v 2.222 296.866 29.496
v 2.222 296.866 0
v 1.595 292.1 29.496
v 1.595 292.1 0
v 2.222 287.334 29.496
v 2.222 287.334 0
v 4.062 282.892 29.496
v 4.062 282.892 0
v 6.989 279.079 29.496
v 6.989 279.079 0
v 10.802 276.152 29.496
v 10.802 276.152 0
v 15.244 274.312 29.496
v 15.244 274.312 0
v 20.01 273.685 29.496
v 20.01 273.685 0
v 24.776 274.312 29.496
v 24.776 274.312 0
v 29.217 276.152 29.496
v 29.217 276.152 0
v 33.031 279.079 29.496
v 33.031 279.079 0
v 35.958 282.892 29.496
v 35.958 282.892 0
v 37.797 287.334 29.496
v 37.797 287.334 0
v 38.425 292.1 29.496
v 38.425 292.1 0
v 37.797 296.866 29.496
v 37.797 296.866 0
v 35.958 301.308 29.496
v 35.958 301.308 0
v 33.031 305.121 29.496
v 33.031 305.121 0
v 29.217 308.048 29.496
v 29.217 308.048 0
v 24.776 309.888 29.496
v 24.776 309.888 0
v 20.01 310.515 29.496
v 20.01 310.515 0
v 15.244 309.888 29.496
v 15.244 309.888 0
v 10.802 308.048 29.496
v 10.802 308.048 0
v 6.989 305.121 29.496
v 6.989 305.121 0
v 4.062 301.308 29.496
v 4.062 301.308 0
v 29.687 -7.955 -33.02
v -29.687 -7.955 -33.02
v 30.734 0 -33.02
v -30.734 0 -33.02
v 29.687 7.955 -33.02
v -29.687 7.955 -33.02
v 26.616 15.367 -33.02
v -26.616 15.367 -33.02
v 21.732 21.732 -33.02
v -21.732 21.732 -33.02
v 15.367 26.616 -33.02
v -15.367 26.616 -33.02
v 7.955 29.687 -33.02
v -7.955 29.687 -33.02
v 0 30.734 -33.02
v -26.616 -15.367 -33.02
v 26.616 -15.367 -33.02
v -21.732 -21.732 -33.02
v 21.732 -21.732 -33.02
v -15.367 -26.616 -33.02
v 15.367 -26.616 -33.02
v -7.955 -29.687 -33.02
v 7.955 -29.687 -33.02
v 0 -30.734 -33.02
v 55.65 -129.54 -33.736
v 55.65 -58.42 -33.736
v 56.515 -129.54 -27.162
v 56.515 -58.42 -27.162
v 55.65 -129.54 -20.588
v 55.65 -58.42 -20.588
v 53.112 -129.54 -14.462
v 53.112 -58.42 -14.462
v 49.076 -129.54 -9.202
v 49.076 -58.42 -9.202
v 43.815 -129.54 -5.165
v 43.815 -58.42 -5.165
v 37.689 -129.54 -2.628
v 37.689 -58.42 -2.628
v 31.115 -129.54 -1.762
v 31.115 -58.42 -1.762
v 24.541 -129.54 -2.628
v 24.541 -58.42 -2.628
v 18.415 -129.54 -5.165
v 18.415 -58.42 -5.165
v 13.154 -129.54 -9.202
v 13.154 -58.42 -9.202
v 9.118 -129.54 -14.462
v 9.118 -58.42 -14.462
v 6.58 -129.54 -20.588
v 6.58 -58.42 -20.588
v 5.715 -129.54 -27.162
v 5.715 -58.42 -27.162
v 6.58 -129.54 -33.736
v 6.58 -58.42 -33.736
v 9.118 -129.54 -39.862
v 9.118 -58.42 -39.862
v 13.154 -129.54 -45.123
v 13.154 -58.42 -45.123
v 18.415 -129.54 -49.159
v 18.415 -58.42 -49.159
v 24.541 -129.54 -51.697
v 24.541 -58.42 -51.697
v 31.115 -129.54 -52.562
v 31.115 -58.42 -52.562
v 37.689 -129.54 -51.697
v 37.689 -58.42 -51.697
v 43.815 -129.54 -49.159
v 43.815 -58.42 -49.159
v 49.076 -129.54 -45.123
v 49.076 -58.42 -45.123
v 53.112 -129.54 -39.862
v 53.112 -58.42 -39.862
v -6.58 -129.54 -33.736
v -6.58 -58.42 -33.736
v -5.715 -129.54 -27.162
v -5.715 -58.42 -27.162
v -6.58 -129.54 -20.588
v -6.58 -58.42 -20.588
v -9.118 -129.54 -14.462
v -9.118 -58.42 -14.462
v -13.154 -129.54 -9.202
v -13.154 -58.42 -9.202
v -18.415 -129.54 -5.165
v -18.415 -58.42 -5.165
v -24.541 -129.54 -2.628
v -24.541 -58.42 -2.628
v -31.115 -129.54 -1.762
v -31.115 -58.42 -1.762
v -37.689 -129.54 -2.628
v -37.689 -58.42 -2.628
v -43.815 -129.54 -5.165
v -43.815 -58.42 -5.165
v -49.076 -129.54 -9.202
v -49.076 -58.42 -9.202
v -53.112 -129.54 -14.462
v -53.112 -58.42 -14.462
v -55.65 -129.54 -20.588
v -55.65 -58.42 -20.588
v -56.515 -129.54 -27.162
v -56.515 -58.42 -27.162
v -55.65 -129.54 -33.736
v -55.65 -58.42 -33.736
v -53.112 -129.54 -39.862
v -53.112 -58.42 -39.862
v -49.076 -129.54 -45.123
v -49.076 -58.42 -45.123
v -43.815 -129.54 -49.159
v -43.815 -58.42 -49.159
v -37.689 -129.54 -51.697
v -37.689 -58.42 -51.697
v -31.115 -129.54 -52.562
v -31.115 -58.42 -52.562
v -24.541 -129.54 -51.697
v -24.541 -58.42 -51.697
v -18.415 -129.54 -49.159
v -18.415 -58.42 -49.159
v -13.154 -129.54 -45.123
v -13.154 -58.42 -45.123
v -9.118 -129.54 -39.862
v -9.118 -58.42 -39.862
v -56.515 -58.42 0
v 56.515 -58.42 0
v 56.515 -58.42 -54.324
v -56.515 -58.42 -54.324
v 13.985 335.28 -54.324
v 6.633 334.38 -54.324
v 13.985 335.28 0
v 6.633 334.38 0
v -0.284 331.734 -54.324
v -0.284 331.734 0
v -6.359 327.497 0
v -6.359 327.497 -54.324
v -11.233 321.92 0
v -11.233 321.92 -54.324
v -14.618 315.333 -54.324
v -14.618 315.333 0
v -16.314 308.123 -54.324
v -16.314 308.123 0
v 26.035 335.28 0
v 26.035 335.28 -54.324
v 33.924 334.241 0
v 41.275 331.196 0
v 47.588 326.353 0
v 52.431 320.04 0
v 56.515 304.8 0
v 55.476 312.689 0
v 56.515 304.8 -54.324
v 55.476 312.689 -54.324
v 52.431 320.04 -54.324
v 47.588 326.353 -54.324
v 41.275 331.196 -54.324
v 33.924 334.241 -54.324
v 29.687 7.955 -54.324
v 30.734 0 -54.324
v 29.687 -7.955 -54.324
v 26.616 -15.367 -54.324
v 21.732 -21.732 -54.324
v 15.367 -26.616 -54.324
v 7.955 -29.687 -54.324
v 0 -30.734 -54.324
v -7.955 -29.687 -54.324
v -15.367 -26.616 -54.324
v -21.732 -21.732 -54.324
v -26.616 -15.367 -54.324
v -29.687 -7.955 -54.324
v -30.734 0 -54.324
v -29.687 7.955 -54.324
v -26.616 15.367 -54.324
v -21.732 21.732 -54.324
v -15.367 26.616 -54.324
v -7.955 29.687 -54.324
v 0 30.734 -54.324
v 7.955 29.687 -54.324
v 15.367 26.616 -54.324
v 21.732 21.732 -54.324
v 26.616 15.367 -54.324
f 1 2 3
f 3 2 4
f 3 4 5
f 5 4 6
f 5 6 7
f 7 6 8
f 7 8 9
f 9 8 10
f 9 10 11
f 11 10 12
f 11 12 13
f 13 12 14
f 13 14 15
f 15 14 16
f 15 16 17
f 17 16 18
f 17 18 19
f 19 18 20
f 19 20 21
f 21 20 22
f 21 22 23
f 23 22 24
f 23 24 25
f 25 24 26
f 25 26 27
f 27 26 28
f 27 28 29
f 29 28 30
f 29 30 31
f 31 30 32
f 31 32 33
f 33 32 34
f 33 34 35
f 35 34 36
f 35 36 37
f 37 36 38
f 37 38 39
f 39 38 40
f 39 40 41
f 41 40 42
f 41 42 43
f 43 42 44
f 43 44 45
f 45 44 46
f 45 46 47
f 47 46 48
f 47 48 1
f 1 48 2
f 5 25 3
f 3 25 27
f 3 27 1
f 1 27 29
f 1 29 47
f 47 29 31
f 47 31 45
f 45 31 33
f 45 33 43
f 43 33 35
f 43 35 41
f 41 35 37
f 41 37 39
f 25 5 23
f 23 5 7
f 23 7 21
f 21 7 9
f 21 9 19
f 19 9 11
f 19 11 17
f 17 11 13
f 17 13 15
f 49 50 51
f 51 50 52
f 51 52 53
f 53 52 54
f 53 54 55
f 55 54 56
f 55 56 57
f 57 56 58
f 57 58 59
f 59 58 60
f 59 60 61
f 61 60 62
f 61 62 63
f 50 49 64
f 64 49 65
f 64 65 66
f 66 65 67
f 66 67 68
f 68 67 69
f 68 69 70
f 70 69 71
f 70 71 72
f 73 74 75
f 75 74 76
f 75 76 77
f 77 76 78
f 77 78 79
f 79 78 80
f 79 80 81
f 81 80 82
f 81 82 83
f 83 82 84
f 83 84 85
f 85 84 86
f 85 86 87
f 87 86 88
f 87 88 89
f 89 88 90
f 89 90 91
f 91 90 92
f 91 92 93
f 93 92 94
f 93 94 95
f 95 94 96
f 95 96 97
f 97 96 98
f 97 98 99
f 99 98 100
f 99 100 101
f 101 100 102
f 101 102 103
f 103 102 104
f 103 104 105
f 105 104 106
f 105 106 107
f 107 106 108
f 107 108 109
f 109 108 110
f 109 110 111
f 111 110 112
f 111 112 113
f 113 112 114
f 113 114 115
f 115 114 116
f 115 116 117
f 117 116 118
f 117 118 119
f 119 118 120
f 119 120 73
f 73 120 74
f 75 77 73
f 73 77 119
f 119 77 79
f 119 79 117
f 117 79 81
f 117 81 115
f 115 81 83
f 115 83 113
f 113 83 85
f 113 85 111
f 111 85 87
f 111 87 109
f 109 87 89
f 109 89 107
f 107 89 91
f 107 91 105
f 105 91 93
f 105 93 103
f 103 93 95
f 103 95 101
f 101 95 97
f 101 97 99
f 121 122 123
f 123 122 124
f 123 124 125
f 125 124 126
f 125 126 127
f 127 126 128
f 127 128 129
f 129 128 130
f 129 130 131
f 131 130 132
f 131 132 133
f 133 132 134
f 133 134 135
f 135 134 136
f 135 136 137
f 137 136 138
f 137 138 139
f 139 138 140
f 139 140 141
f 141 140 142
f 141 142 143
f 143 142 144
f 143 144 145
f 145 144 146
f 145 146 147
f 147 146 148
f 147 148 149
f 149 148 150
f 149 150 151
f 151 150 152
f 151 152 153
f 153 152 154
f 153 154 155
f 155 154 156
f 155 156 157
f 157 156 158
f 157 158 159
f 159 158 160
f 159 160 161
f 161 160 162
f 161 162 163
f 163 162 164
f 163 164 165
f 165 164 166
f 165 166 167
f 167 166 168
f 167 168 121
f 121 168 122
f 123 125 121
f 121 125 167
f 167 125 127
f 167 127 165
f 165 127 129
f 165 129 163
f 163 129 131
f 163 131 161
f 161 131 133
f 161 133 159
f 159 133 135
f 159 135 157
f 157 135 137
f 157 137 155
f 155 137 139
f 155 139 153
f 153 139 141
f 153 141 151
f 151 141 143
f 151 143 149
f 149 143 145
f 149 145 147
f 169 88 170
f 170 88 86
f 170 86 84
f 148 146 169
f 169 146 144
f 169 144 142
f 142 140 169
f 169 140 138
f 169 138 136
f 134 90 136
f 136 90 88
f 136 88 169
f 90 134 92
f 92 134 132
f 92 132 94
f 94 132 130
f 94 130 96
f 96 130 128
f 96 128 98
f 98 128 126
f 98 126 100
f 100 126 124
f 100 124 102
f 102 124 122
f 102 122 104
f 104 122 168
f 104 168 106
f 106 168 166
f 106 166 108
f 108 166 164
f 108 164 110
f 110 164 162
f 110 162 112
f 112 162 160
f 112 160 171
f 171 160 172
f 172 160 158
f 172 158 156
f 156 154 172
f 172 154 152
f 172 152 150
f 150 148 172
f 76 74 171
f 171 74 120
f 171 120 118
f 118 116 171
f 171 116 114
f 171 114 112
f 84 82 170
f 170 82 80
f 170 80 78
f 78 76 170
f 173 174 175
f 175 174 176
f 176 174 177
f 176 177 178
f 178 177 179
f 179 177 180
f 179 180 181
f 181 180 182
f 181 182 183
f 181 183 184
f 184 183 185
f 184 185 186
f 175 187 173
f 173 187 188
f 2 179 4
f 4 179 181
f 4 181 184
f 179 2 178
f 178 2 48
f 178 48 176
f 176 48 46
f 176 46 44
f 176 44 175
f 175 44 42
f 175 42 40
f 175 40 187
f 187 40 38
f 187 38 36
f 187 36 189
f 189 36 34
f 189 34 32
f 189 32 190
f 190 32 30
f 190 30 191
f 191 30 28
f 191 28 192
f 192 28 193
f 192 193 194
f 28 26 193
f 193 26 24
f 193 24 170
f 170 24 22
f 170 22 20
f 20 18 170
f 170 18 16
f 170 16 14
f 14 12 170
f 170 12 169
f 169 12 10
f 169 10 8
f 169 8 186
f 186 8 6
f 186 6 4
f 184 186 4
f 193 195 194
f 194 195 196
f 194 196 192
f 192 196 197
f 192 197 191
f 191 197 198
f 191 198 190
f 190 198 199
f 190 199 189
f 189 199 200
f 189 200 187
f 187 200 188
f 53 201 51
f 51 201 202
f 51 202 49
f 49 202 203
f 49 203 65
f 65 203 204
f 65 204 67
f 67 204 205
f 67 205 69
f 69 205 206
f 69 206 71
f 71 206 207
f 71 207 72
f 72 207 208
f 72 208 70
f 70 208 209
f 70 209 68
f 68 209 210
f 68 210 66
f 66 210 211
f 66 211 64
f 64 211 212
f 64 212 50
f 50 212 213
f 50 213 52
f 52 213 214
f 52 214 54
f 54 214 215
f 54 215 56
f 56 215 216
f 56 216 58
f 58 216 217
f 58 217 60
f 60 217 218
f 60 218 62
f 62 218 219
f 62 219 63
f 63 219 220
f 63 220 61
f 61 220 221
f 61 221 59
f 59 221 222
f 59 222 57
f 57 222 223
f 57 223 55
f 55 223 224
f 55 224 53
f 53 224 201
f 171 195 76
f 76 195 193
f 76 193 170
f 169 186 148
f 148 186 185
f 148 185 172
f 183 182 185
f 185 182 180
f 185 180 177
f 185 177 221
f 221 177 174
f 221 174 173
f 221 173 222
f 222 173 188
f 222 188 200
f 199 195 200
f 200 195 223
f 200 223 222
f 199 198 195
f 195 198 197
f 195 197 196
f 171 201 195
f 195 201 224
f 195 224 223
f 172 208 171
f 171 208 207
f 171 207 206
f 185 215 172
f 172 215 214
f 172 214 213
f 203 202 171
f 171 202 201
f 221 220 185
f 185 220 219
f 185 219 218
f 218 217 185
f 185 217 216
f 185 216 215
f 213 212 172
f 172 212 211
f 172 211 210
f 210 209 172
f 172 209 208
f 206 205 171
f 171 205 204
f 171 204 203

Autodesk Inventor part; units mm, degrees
ref_plane "YZ Plane" through (0, 0, 0) normal (1, 0, 0) x (0, 1, 0)
ref_plane "XZ Plane" through (0, 0, 0) normal (0, 1, 0) x (-1, 0, 0)
ref_plane "XY Plane" through (0, 0, 0) normal (0, 0, 1) x (1, 0, 0)
sketch "Sketch1" plane through (0, 0, 0) normal (0, 0, 1) x (1, 0, 0)
  circle A0 centre (0, 0) radius 30.734
  line L0 (-56.515, -58.42) -> (56.515, -58.42)
  line L1 (56.515, -58.42) -> (56.515, 335.28)
  line L2 (56.515, 335.28) -> (-13.335, 335.28)
  line L3 (-13.335, 335.28) -> (-56.515, -58.42)
  dimension "d0" = 61.468
  dimension "d1" = 393.7
  dimension "d2" = 113.03
  dimension "d3" = 69.85
  dimension "d4" = 58.42
  dimension "d5" = 56.515
extrude "Extrusion1" add sketch "Sketch1" against normal blind 54.3243
fillet "Fillet1" radius 30.48 2 edges at (56.515, 335.28, -27.1621) (-13.335, 335.28, -27.1621)
sketch "Sketch2" plane through (-56.515, -58.42, 0) normal (0, -1, 0) x (1, 0, 0)
  line L0 (113.03, 0) -> (113.03, -54.3243) projected
  line L1 (113.03, -27.1621) -> (0, -27.1621)
  line L2 (0, 0) -> (0, -54.3243) projected
  line L3 (56.515, -27.1621) -> (56.515, -44.3071)
  circle A0 centre (87.63, -27.1621) radius 25.4
  circle A1 centre (25.4, -27.1621) radius 25.4
  point P0 (56.515, 0)
  dimension "d10" = 50.8
  dimension "d9" = 50.8
  dimension "d11" = 113.03
extrude "Extrusion2" add sketch "Sketch2" along normal blind 71.12
sketch "Sketch3" plane through (0, 0, 0) normal (0, 0, 1) x (1, 0, 0)
  circle A0 centre (0, 0) radius 42.7153
extrude "Extrusion3" add sketch "Sketch3" against normal blind 33.02
sketch "Sketch4" plane through (0, 0, -54.3243) normal (0, 0, -1) x (-1, 0, 0)
  line L0 (-26.035, 335.28) -> (-13.9848, 335.28) projected
  line L1 (-20.0099, 335.28) -> (-20.0099, 292.1)
  circle A0 centre (-20.0099, 292.1) radius 18.415
  point P0 (0, 0)
  dimension "d17" = 36.83
  dimension "d20" = 292.1
extrude "Extrusion4" add sketch "Sketch4" against normal blind 83.82
equation "\"d5\" = 0.5 * d2"
equation "\"d10\" = d9"
properties part number "Forearm"
